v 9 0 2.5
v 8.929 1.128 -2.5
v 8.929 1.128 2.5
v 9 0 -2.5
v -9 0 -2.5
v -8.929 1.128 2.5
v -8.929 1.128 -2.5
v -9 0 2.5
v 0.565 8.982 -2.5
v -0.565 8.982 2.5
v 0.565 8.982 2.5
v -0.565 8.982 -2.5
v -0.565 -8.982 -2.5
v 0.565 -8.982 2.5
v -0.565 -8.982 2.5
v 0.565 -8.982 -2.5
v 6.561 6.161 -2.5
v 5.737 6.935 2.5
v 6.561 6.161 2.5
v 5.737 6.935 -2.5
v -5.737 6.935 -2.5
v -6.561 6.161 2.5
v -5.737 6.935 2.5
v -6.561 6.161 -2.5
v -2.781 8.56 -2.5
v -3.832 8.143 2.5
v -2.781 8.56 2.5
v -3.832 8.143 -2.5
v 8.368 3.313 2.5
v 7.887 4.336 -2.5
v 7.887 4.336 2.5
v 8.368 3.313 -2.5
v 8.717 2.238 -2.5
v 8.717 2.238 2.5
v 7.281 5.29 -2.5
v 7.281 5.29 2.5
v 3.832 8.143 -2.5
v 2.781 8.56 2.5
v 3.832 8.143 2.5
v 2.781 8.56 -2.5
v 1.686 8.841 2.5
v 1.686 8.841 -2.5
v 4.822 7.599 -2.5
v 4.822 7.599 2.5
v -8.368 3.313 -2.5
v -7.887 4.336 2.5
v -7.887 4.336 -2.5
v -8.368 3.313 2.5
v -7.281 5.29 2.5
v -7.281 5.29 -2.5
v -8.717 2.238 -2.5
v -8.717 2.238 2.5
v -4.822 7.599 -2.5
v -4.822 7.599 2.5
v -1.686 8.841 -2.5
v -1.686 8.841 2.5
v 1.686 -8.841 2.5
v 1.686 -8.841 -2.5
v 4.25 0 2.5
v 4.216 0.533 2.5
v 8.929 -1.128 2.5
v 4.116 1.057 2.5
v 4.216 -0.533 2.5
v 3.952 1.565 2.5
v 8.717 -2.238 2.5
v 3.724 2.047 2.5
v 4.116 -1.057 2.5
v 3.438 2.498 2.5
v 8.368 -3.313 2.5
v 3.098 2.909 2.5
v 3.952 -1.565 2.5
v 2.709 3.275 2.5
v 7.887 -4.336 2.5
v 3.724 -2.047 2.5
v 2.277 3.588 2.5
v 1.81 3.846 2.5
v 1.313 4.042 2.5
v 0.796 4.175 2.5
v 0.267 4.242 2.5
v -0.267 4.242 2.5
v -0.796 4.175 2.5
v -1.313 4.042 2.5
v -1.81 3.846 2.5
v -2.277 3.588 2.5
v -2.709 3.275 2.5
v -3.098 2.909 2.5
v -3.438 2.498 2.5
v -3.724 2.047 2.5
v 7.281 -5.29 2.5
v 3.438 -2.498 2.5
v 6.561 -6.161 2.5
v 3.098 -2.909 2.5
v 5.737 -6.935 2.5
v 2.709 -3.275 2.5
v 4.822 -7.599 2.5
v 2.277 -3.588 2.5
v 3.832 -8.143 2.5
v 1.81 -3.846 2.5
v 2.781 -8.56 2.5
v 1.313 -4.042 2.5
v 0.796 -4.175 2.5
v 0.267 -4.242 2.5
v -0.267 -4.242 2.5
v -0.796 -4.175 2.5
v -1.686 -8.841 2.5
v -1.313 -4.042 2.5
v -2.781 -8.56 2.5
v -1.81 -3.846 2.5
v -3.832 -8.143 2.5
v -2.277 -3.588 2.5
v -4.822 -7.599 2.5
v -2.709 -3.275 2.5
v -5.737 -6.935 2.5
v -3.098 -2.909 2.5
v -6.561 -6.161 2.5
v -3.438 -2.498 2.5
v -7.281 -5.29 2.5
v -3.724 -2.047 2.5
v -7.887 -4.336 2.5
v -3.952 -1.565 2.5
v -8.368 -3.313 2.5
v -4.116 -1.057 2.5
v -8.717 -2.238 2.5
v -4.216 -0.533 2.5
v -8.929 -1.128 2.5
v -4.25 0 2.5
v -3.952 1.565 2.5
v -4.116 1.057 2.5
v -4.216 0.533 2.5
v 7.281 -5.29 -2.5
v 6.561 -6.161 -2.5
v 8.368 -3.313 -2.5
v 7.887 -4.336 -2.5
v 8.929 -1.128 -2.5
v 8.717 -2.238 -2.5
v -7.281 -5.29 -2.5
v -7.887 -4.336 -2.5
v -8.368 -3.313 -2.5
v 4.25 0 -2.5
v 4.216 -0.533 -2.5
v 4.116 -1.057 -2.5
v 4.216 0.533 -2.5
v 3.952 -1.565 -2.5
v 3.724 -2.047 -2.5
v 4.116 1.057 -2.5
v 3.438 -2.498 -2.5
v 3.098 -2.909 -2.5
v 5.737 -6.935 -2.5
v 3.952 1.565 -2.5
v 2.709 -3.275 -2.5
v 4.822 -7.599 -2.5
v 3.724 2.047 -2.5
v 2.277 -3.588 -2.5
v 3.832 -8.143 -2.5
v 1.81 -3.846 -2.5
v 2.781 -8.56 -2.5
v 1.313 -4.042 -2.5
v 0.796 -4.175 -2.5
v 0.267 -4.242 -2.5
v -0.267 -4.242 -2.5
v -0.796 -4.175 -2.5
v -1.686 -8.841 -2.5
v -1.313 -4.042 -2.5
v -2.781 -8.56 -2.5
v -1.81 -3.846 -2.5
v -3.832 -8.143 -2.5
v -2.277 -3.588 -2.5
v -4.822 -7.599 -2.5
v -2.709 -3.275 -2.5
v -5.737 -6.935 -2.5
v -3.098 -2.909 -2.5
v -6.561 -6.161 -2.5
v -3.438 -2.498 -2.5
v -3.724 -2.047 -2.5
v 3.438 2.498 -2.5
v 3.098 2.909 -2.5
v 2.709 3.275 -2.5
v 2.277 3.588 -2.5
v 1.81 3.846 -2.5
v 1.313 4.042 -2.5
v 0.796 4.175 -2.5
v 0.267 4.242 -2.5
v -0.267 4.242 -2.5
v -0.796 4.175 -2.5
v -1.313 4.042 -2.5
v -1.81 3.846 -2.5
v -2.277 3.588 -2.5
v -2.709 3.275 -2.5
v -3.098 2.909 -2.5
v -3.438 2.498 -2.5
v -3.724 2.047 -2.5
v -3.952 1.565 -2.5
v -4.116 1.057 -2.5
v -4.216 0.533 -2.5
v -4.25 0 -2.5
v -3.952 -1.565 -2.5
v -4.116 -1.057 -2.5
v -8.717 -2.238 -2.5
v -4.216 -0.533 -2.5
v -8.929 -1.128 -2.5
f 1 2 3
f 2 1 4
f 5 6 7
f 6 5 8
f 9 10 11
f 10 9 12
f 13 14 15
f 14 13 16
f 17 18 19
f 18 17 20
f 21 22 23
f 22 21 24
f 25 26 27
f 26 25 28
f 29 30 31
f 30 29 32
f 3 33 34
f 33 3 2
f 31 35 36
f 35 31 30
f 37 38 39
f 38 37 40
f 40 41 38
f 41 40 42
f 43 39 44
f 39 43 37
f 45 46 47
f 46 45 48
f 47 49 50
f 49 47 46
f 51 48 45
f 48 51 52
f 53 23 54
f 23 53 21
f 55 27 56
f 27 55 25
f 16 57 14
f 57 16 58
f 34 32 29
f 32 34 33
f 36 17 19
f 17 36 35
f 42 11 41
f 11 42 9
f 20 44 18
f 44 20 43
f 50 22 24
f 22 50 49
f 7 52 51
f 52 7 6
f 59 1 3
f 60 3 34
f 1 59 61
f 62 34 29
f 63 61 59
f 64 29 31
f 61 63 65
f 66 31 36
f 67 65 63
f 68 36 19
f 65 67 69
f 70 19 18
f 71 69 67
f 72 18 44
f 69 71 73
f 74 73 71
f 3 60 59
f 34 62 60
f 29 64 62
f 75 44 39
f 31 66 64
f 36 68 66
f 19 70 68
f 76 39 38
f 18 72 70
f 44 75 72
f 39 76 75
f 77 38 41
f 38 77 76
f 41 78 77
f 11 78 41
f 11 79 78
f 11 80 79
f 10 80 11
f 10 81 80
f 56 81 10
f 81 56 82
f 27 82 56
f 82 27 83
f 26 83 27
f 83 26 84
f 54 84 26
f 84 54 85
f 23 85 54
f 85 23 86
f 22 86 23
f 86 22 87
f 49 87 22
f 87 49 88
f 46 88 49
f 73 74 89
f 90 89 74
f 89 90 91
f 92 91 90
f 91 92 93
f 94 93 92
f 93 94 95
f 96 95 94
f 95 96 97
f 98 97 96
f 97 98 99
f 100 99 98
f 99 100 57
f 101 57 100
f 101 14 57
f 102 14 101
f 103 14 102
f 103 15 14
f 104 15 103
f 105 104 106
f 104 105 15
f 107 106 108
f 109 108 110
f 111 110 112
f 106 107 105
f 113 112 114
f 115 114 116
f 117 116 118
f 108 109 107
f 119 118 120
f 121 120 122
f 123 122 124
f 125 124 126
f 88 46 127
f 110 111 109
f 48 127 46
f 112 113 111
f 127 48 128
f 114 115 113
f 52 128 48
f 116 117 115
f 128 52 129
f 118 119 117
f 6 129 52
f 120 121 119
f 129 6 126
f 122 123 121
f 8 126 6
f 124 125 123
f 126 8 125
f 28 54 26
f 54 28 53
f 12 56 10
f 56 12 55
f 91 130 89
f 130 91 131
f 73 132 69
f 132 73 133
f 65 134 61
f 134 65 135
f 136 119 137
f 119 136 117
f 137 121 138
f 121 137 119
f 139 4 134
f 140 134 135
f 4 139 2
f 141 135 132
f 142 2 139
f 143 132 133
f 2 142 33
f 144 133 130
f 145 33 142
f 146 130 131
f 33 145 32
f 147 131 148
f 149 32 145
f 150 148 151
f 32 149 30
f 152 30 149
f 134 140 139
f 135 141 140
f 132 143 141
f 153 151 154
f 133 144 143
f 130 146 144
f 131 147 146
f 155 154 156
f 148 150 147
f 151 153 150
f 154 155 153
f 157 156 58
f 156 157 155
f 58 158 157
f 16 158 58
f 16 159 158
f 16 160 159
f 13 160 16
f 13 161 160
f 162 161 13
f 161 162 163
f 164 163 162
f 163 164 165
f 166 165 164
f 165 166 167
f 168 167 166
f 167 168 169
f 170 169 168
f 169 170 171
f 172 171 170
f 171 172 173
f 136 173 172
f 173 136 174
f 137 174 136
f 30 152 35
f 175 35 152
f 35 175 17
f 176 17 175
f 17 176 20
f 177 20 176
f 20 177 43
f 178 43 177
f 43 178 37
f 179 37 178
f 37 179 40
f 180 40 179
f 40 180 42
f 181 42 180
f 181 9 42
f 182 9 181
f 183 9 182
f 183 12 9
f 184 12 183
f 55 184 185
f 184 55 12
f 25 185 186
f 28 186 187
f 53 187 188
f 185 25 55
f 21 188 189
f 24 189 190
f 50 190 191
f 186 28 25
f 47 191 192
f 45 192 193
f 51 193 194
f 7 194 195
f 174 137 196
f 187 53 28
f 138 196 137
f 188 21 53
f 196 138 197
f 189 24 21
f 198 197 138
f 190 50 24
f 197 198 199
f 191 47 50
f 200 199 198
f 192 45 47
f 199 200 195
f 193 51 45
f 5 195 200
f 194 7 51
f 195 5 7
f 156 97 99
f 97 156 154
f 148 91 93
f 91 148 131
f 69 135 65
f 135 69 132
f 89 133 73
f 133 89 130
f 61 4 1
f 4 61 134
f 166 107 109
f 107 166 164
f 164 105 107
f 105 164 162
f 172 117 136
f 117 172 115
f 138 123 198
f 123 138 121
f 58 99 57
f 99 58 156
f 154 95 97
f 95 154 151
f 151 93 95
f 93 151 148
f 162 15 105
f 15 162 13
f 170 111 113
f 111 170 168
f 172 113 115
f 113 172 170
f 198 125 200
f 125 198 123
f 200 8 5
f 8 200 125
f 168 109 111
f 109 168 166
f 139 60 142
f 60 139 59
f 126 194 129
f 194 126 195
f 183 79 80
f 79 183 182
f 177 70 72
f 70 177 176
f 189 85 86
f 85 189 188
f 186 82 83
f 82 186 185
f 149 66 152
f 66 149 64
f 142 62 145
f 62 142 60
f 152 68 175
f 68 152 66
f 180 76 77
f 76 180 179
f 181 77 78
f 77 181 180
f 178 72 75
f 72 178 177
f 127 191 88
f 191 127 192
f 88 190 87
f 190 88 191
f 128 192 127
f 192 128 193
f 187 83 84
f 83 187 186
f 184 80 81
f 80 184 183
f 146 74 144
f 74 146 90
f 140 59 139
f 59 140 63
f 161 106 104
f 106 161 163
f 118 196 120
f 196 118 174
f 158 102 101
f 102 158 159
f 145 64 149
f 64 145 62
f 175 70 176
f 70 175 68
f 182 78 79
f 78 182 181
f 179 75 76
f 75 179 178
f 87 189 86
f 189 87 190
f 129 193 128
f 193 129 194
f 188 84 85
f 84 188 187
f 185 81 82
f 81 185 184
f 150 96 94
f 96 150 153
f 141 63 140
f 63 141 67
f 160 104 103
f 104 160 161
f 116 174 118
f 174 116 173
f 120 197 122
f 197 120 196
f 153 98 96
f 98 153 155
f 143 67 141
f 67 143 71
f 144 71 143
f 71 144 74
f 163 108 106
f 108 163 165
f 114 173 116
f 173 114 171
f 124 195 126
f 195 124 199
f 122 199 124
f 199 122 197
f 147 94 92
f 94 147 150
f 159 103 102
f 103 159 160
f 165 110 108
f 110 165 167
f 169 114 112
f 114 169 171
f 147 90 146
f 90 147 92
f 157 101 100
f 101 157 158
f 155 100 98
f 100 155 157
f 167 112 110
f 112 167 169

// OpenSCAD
$fn = 50;


difference() {
	union() {
		translate(v = [0, 0, -2.5000000000]) {
			cylinder(h = 5, r = 9.0000000000);
		}
	}
	union() {
		translate(v = [0, 0, -100.0000000000]) {
			cylinder(h = 200, r = 4.2500000000);
		}
	}
}
